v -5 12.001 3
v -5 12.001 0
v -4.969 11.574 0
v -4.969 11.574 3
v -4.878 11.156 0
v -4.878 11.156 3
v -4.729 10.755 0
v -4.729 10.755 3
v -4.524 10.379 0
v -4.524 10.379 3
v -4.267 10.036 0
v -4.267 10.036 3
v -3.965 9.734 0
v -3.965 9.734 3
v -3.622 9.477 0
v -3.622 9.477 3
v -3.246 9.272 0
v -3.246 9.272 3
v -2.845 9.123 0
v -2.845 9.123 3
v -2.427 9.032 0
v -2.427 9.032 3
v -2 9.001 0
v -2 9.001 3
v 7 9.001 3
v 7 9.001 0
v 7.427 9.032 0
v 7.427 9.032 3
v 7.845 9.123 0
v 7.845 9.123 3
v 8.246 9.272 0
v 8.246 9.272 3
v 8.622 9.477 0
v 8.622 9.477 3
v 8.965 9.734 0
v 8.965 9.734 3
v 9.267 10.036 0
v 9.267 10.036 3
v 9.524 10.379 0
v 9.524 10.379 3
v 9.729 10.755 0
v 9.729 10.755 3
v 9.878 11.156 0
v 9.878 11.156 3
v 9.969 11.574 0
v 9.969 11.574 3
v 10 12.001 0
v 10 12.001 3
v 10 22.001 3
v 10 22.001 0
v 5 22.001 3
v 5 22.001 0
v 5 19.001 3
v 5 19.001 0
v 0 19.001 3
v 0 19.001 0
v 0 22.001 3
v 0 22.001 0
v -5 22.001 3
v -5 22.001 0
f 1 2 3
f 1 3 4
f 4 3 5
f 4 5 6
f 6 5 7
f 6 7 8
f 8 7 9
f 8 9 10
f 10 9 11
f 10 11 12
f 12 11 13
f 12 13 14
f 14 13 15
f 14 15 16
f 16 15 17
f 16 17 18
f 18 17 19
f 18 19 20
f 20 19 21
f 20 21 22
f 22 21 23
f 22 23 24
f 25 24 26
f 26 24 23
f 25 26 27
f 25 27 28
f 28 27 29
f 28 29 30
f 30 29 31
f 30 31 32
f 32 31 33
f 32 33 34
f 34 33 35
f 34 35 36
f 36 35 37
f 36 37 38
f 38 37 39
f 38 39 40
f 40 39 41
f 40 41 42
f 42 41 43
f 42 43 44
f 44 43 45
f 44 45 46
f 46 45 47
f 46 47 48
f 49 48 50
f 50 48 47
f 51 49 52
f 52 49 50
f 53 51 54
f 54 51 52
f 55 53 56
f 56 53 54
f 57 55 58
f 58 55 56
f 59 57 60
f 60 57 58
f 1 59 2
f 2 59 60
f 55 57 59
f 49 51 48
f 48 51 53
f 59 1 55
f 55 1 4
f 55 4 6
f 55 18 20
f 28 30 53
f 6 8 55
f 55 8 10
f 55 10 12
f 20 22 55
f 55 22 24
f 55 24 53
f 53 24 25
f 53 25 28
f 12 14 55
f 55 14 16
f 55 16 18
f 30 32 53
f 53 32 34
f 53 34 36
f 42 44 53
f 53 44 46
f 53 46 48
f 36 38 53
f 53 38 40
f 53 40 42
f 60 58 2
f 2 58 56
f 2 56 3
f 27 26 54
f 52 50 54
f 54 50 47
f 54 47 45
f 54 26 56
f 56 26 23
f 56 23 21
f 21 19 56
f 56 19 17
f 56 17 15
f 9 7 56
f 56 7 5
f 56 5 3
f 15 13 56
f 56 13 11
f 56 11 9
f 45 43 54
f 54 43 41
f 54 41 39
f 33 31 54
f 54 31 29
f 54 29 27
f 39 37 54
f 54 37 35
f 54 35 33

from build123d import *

# Parameters (mm, degrees)
SALIENTE_EXTRUIR1_DEPTH = 3


with BuildPart() as part:
    # Croquis1 → Saliente-Extruir1 (new body)
    with BuildSketch(Plane.XY):
        with BuildLine():
            Line((0, 22.001027223), (-5, 22.001027223))
            Line((-5, 22.001027223), (-5, 12.001027223))
            ThreePointArc((-5, 12.001027223), (-4.121320344, 9.87970688), (-2, 9.001027223))
            Line((-2, 9.001027223), (7, 9.001027223))
            ThreePointArc((7, 9.001027223), (9.121320344, 9.87970688), (10, 12.001027223))
            Line((10, 12.001027223), (10, 19.001027223))
            Line((10, 19.001027223), (10, 22.001027223))
            Line((10, 22.001027223), (5, 22.001027223))
            Line((5, 22.001027223), (5, 19.001027223))
            Line((5, 19.001027223), (0, 19.001027223))
            Line((0, 19.001027223), (0, 22.001027223))
        make_face()
    extrude(amount=SALIENTE_EXTRUIR1_DEPTH)


solid = part.part
